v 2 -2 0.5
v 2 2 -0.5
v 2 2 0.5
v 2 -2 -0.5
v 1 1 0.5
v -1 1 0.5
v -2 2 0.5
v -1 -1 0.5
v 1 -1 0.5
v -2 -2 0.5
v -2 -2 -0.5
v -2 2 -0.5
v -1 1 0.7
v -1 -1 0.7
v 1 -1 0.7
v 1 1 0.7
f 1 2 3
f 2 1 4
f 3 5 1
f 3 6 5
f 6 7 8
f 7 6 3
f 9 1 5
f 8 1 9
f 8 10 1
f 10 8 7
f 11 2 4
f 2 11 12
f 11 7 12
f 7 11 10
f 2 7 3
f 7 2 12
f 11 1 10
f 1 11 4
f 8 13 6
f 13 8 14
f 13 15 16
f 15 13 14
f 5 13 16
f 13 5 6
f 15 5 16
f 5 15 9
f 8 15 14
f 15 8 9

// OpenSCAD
// Set the dimensions
length = 4;
width = 4;

// Create the square
cube([length, width, 1], center = true);

// Create the surface pattern
translate([0, 0, 0.5]) {
  linear_extrude(height = 0.2) {
    square([length/2, width/2], center = true);
  }
}
